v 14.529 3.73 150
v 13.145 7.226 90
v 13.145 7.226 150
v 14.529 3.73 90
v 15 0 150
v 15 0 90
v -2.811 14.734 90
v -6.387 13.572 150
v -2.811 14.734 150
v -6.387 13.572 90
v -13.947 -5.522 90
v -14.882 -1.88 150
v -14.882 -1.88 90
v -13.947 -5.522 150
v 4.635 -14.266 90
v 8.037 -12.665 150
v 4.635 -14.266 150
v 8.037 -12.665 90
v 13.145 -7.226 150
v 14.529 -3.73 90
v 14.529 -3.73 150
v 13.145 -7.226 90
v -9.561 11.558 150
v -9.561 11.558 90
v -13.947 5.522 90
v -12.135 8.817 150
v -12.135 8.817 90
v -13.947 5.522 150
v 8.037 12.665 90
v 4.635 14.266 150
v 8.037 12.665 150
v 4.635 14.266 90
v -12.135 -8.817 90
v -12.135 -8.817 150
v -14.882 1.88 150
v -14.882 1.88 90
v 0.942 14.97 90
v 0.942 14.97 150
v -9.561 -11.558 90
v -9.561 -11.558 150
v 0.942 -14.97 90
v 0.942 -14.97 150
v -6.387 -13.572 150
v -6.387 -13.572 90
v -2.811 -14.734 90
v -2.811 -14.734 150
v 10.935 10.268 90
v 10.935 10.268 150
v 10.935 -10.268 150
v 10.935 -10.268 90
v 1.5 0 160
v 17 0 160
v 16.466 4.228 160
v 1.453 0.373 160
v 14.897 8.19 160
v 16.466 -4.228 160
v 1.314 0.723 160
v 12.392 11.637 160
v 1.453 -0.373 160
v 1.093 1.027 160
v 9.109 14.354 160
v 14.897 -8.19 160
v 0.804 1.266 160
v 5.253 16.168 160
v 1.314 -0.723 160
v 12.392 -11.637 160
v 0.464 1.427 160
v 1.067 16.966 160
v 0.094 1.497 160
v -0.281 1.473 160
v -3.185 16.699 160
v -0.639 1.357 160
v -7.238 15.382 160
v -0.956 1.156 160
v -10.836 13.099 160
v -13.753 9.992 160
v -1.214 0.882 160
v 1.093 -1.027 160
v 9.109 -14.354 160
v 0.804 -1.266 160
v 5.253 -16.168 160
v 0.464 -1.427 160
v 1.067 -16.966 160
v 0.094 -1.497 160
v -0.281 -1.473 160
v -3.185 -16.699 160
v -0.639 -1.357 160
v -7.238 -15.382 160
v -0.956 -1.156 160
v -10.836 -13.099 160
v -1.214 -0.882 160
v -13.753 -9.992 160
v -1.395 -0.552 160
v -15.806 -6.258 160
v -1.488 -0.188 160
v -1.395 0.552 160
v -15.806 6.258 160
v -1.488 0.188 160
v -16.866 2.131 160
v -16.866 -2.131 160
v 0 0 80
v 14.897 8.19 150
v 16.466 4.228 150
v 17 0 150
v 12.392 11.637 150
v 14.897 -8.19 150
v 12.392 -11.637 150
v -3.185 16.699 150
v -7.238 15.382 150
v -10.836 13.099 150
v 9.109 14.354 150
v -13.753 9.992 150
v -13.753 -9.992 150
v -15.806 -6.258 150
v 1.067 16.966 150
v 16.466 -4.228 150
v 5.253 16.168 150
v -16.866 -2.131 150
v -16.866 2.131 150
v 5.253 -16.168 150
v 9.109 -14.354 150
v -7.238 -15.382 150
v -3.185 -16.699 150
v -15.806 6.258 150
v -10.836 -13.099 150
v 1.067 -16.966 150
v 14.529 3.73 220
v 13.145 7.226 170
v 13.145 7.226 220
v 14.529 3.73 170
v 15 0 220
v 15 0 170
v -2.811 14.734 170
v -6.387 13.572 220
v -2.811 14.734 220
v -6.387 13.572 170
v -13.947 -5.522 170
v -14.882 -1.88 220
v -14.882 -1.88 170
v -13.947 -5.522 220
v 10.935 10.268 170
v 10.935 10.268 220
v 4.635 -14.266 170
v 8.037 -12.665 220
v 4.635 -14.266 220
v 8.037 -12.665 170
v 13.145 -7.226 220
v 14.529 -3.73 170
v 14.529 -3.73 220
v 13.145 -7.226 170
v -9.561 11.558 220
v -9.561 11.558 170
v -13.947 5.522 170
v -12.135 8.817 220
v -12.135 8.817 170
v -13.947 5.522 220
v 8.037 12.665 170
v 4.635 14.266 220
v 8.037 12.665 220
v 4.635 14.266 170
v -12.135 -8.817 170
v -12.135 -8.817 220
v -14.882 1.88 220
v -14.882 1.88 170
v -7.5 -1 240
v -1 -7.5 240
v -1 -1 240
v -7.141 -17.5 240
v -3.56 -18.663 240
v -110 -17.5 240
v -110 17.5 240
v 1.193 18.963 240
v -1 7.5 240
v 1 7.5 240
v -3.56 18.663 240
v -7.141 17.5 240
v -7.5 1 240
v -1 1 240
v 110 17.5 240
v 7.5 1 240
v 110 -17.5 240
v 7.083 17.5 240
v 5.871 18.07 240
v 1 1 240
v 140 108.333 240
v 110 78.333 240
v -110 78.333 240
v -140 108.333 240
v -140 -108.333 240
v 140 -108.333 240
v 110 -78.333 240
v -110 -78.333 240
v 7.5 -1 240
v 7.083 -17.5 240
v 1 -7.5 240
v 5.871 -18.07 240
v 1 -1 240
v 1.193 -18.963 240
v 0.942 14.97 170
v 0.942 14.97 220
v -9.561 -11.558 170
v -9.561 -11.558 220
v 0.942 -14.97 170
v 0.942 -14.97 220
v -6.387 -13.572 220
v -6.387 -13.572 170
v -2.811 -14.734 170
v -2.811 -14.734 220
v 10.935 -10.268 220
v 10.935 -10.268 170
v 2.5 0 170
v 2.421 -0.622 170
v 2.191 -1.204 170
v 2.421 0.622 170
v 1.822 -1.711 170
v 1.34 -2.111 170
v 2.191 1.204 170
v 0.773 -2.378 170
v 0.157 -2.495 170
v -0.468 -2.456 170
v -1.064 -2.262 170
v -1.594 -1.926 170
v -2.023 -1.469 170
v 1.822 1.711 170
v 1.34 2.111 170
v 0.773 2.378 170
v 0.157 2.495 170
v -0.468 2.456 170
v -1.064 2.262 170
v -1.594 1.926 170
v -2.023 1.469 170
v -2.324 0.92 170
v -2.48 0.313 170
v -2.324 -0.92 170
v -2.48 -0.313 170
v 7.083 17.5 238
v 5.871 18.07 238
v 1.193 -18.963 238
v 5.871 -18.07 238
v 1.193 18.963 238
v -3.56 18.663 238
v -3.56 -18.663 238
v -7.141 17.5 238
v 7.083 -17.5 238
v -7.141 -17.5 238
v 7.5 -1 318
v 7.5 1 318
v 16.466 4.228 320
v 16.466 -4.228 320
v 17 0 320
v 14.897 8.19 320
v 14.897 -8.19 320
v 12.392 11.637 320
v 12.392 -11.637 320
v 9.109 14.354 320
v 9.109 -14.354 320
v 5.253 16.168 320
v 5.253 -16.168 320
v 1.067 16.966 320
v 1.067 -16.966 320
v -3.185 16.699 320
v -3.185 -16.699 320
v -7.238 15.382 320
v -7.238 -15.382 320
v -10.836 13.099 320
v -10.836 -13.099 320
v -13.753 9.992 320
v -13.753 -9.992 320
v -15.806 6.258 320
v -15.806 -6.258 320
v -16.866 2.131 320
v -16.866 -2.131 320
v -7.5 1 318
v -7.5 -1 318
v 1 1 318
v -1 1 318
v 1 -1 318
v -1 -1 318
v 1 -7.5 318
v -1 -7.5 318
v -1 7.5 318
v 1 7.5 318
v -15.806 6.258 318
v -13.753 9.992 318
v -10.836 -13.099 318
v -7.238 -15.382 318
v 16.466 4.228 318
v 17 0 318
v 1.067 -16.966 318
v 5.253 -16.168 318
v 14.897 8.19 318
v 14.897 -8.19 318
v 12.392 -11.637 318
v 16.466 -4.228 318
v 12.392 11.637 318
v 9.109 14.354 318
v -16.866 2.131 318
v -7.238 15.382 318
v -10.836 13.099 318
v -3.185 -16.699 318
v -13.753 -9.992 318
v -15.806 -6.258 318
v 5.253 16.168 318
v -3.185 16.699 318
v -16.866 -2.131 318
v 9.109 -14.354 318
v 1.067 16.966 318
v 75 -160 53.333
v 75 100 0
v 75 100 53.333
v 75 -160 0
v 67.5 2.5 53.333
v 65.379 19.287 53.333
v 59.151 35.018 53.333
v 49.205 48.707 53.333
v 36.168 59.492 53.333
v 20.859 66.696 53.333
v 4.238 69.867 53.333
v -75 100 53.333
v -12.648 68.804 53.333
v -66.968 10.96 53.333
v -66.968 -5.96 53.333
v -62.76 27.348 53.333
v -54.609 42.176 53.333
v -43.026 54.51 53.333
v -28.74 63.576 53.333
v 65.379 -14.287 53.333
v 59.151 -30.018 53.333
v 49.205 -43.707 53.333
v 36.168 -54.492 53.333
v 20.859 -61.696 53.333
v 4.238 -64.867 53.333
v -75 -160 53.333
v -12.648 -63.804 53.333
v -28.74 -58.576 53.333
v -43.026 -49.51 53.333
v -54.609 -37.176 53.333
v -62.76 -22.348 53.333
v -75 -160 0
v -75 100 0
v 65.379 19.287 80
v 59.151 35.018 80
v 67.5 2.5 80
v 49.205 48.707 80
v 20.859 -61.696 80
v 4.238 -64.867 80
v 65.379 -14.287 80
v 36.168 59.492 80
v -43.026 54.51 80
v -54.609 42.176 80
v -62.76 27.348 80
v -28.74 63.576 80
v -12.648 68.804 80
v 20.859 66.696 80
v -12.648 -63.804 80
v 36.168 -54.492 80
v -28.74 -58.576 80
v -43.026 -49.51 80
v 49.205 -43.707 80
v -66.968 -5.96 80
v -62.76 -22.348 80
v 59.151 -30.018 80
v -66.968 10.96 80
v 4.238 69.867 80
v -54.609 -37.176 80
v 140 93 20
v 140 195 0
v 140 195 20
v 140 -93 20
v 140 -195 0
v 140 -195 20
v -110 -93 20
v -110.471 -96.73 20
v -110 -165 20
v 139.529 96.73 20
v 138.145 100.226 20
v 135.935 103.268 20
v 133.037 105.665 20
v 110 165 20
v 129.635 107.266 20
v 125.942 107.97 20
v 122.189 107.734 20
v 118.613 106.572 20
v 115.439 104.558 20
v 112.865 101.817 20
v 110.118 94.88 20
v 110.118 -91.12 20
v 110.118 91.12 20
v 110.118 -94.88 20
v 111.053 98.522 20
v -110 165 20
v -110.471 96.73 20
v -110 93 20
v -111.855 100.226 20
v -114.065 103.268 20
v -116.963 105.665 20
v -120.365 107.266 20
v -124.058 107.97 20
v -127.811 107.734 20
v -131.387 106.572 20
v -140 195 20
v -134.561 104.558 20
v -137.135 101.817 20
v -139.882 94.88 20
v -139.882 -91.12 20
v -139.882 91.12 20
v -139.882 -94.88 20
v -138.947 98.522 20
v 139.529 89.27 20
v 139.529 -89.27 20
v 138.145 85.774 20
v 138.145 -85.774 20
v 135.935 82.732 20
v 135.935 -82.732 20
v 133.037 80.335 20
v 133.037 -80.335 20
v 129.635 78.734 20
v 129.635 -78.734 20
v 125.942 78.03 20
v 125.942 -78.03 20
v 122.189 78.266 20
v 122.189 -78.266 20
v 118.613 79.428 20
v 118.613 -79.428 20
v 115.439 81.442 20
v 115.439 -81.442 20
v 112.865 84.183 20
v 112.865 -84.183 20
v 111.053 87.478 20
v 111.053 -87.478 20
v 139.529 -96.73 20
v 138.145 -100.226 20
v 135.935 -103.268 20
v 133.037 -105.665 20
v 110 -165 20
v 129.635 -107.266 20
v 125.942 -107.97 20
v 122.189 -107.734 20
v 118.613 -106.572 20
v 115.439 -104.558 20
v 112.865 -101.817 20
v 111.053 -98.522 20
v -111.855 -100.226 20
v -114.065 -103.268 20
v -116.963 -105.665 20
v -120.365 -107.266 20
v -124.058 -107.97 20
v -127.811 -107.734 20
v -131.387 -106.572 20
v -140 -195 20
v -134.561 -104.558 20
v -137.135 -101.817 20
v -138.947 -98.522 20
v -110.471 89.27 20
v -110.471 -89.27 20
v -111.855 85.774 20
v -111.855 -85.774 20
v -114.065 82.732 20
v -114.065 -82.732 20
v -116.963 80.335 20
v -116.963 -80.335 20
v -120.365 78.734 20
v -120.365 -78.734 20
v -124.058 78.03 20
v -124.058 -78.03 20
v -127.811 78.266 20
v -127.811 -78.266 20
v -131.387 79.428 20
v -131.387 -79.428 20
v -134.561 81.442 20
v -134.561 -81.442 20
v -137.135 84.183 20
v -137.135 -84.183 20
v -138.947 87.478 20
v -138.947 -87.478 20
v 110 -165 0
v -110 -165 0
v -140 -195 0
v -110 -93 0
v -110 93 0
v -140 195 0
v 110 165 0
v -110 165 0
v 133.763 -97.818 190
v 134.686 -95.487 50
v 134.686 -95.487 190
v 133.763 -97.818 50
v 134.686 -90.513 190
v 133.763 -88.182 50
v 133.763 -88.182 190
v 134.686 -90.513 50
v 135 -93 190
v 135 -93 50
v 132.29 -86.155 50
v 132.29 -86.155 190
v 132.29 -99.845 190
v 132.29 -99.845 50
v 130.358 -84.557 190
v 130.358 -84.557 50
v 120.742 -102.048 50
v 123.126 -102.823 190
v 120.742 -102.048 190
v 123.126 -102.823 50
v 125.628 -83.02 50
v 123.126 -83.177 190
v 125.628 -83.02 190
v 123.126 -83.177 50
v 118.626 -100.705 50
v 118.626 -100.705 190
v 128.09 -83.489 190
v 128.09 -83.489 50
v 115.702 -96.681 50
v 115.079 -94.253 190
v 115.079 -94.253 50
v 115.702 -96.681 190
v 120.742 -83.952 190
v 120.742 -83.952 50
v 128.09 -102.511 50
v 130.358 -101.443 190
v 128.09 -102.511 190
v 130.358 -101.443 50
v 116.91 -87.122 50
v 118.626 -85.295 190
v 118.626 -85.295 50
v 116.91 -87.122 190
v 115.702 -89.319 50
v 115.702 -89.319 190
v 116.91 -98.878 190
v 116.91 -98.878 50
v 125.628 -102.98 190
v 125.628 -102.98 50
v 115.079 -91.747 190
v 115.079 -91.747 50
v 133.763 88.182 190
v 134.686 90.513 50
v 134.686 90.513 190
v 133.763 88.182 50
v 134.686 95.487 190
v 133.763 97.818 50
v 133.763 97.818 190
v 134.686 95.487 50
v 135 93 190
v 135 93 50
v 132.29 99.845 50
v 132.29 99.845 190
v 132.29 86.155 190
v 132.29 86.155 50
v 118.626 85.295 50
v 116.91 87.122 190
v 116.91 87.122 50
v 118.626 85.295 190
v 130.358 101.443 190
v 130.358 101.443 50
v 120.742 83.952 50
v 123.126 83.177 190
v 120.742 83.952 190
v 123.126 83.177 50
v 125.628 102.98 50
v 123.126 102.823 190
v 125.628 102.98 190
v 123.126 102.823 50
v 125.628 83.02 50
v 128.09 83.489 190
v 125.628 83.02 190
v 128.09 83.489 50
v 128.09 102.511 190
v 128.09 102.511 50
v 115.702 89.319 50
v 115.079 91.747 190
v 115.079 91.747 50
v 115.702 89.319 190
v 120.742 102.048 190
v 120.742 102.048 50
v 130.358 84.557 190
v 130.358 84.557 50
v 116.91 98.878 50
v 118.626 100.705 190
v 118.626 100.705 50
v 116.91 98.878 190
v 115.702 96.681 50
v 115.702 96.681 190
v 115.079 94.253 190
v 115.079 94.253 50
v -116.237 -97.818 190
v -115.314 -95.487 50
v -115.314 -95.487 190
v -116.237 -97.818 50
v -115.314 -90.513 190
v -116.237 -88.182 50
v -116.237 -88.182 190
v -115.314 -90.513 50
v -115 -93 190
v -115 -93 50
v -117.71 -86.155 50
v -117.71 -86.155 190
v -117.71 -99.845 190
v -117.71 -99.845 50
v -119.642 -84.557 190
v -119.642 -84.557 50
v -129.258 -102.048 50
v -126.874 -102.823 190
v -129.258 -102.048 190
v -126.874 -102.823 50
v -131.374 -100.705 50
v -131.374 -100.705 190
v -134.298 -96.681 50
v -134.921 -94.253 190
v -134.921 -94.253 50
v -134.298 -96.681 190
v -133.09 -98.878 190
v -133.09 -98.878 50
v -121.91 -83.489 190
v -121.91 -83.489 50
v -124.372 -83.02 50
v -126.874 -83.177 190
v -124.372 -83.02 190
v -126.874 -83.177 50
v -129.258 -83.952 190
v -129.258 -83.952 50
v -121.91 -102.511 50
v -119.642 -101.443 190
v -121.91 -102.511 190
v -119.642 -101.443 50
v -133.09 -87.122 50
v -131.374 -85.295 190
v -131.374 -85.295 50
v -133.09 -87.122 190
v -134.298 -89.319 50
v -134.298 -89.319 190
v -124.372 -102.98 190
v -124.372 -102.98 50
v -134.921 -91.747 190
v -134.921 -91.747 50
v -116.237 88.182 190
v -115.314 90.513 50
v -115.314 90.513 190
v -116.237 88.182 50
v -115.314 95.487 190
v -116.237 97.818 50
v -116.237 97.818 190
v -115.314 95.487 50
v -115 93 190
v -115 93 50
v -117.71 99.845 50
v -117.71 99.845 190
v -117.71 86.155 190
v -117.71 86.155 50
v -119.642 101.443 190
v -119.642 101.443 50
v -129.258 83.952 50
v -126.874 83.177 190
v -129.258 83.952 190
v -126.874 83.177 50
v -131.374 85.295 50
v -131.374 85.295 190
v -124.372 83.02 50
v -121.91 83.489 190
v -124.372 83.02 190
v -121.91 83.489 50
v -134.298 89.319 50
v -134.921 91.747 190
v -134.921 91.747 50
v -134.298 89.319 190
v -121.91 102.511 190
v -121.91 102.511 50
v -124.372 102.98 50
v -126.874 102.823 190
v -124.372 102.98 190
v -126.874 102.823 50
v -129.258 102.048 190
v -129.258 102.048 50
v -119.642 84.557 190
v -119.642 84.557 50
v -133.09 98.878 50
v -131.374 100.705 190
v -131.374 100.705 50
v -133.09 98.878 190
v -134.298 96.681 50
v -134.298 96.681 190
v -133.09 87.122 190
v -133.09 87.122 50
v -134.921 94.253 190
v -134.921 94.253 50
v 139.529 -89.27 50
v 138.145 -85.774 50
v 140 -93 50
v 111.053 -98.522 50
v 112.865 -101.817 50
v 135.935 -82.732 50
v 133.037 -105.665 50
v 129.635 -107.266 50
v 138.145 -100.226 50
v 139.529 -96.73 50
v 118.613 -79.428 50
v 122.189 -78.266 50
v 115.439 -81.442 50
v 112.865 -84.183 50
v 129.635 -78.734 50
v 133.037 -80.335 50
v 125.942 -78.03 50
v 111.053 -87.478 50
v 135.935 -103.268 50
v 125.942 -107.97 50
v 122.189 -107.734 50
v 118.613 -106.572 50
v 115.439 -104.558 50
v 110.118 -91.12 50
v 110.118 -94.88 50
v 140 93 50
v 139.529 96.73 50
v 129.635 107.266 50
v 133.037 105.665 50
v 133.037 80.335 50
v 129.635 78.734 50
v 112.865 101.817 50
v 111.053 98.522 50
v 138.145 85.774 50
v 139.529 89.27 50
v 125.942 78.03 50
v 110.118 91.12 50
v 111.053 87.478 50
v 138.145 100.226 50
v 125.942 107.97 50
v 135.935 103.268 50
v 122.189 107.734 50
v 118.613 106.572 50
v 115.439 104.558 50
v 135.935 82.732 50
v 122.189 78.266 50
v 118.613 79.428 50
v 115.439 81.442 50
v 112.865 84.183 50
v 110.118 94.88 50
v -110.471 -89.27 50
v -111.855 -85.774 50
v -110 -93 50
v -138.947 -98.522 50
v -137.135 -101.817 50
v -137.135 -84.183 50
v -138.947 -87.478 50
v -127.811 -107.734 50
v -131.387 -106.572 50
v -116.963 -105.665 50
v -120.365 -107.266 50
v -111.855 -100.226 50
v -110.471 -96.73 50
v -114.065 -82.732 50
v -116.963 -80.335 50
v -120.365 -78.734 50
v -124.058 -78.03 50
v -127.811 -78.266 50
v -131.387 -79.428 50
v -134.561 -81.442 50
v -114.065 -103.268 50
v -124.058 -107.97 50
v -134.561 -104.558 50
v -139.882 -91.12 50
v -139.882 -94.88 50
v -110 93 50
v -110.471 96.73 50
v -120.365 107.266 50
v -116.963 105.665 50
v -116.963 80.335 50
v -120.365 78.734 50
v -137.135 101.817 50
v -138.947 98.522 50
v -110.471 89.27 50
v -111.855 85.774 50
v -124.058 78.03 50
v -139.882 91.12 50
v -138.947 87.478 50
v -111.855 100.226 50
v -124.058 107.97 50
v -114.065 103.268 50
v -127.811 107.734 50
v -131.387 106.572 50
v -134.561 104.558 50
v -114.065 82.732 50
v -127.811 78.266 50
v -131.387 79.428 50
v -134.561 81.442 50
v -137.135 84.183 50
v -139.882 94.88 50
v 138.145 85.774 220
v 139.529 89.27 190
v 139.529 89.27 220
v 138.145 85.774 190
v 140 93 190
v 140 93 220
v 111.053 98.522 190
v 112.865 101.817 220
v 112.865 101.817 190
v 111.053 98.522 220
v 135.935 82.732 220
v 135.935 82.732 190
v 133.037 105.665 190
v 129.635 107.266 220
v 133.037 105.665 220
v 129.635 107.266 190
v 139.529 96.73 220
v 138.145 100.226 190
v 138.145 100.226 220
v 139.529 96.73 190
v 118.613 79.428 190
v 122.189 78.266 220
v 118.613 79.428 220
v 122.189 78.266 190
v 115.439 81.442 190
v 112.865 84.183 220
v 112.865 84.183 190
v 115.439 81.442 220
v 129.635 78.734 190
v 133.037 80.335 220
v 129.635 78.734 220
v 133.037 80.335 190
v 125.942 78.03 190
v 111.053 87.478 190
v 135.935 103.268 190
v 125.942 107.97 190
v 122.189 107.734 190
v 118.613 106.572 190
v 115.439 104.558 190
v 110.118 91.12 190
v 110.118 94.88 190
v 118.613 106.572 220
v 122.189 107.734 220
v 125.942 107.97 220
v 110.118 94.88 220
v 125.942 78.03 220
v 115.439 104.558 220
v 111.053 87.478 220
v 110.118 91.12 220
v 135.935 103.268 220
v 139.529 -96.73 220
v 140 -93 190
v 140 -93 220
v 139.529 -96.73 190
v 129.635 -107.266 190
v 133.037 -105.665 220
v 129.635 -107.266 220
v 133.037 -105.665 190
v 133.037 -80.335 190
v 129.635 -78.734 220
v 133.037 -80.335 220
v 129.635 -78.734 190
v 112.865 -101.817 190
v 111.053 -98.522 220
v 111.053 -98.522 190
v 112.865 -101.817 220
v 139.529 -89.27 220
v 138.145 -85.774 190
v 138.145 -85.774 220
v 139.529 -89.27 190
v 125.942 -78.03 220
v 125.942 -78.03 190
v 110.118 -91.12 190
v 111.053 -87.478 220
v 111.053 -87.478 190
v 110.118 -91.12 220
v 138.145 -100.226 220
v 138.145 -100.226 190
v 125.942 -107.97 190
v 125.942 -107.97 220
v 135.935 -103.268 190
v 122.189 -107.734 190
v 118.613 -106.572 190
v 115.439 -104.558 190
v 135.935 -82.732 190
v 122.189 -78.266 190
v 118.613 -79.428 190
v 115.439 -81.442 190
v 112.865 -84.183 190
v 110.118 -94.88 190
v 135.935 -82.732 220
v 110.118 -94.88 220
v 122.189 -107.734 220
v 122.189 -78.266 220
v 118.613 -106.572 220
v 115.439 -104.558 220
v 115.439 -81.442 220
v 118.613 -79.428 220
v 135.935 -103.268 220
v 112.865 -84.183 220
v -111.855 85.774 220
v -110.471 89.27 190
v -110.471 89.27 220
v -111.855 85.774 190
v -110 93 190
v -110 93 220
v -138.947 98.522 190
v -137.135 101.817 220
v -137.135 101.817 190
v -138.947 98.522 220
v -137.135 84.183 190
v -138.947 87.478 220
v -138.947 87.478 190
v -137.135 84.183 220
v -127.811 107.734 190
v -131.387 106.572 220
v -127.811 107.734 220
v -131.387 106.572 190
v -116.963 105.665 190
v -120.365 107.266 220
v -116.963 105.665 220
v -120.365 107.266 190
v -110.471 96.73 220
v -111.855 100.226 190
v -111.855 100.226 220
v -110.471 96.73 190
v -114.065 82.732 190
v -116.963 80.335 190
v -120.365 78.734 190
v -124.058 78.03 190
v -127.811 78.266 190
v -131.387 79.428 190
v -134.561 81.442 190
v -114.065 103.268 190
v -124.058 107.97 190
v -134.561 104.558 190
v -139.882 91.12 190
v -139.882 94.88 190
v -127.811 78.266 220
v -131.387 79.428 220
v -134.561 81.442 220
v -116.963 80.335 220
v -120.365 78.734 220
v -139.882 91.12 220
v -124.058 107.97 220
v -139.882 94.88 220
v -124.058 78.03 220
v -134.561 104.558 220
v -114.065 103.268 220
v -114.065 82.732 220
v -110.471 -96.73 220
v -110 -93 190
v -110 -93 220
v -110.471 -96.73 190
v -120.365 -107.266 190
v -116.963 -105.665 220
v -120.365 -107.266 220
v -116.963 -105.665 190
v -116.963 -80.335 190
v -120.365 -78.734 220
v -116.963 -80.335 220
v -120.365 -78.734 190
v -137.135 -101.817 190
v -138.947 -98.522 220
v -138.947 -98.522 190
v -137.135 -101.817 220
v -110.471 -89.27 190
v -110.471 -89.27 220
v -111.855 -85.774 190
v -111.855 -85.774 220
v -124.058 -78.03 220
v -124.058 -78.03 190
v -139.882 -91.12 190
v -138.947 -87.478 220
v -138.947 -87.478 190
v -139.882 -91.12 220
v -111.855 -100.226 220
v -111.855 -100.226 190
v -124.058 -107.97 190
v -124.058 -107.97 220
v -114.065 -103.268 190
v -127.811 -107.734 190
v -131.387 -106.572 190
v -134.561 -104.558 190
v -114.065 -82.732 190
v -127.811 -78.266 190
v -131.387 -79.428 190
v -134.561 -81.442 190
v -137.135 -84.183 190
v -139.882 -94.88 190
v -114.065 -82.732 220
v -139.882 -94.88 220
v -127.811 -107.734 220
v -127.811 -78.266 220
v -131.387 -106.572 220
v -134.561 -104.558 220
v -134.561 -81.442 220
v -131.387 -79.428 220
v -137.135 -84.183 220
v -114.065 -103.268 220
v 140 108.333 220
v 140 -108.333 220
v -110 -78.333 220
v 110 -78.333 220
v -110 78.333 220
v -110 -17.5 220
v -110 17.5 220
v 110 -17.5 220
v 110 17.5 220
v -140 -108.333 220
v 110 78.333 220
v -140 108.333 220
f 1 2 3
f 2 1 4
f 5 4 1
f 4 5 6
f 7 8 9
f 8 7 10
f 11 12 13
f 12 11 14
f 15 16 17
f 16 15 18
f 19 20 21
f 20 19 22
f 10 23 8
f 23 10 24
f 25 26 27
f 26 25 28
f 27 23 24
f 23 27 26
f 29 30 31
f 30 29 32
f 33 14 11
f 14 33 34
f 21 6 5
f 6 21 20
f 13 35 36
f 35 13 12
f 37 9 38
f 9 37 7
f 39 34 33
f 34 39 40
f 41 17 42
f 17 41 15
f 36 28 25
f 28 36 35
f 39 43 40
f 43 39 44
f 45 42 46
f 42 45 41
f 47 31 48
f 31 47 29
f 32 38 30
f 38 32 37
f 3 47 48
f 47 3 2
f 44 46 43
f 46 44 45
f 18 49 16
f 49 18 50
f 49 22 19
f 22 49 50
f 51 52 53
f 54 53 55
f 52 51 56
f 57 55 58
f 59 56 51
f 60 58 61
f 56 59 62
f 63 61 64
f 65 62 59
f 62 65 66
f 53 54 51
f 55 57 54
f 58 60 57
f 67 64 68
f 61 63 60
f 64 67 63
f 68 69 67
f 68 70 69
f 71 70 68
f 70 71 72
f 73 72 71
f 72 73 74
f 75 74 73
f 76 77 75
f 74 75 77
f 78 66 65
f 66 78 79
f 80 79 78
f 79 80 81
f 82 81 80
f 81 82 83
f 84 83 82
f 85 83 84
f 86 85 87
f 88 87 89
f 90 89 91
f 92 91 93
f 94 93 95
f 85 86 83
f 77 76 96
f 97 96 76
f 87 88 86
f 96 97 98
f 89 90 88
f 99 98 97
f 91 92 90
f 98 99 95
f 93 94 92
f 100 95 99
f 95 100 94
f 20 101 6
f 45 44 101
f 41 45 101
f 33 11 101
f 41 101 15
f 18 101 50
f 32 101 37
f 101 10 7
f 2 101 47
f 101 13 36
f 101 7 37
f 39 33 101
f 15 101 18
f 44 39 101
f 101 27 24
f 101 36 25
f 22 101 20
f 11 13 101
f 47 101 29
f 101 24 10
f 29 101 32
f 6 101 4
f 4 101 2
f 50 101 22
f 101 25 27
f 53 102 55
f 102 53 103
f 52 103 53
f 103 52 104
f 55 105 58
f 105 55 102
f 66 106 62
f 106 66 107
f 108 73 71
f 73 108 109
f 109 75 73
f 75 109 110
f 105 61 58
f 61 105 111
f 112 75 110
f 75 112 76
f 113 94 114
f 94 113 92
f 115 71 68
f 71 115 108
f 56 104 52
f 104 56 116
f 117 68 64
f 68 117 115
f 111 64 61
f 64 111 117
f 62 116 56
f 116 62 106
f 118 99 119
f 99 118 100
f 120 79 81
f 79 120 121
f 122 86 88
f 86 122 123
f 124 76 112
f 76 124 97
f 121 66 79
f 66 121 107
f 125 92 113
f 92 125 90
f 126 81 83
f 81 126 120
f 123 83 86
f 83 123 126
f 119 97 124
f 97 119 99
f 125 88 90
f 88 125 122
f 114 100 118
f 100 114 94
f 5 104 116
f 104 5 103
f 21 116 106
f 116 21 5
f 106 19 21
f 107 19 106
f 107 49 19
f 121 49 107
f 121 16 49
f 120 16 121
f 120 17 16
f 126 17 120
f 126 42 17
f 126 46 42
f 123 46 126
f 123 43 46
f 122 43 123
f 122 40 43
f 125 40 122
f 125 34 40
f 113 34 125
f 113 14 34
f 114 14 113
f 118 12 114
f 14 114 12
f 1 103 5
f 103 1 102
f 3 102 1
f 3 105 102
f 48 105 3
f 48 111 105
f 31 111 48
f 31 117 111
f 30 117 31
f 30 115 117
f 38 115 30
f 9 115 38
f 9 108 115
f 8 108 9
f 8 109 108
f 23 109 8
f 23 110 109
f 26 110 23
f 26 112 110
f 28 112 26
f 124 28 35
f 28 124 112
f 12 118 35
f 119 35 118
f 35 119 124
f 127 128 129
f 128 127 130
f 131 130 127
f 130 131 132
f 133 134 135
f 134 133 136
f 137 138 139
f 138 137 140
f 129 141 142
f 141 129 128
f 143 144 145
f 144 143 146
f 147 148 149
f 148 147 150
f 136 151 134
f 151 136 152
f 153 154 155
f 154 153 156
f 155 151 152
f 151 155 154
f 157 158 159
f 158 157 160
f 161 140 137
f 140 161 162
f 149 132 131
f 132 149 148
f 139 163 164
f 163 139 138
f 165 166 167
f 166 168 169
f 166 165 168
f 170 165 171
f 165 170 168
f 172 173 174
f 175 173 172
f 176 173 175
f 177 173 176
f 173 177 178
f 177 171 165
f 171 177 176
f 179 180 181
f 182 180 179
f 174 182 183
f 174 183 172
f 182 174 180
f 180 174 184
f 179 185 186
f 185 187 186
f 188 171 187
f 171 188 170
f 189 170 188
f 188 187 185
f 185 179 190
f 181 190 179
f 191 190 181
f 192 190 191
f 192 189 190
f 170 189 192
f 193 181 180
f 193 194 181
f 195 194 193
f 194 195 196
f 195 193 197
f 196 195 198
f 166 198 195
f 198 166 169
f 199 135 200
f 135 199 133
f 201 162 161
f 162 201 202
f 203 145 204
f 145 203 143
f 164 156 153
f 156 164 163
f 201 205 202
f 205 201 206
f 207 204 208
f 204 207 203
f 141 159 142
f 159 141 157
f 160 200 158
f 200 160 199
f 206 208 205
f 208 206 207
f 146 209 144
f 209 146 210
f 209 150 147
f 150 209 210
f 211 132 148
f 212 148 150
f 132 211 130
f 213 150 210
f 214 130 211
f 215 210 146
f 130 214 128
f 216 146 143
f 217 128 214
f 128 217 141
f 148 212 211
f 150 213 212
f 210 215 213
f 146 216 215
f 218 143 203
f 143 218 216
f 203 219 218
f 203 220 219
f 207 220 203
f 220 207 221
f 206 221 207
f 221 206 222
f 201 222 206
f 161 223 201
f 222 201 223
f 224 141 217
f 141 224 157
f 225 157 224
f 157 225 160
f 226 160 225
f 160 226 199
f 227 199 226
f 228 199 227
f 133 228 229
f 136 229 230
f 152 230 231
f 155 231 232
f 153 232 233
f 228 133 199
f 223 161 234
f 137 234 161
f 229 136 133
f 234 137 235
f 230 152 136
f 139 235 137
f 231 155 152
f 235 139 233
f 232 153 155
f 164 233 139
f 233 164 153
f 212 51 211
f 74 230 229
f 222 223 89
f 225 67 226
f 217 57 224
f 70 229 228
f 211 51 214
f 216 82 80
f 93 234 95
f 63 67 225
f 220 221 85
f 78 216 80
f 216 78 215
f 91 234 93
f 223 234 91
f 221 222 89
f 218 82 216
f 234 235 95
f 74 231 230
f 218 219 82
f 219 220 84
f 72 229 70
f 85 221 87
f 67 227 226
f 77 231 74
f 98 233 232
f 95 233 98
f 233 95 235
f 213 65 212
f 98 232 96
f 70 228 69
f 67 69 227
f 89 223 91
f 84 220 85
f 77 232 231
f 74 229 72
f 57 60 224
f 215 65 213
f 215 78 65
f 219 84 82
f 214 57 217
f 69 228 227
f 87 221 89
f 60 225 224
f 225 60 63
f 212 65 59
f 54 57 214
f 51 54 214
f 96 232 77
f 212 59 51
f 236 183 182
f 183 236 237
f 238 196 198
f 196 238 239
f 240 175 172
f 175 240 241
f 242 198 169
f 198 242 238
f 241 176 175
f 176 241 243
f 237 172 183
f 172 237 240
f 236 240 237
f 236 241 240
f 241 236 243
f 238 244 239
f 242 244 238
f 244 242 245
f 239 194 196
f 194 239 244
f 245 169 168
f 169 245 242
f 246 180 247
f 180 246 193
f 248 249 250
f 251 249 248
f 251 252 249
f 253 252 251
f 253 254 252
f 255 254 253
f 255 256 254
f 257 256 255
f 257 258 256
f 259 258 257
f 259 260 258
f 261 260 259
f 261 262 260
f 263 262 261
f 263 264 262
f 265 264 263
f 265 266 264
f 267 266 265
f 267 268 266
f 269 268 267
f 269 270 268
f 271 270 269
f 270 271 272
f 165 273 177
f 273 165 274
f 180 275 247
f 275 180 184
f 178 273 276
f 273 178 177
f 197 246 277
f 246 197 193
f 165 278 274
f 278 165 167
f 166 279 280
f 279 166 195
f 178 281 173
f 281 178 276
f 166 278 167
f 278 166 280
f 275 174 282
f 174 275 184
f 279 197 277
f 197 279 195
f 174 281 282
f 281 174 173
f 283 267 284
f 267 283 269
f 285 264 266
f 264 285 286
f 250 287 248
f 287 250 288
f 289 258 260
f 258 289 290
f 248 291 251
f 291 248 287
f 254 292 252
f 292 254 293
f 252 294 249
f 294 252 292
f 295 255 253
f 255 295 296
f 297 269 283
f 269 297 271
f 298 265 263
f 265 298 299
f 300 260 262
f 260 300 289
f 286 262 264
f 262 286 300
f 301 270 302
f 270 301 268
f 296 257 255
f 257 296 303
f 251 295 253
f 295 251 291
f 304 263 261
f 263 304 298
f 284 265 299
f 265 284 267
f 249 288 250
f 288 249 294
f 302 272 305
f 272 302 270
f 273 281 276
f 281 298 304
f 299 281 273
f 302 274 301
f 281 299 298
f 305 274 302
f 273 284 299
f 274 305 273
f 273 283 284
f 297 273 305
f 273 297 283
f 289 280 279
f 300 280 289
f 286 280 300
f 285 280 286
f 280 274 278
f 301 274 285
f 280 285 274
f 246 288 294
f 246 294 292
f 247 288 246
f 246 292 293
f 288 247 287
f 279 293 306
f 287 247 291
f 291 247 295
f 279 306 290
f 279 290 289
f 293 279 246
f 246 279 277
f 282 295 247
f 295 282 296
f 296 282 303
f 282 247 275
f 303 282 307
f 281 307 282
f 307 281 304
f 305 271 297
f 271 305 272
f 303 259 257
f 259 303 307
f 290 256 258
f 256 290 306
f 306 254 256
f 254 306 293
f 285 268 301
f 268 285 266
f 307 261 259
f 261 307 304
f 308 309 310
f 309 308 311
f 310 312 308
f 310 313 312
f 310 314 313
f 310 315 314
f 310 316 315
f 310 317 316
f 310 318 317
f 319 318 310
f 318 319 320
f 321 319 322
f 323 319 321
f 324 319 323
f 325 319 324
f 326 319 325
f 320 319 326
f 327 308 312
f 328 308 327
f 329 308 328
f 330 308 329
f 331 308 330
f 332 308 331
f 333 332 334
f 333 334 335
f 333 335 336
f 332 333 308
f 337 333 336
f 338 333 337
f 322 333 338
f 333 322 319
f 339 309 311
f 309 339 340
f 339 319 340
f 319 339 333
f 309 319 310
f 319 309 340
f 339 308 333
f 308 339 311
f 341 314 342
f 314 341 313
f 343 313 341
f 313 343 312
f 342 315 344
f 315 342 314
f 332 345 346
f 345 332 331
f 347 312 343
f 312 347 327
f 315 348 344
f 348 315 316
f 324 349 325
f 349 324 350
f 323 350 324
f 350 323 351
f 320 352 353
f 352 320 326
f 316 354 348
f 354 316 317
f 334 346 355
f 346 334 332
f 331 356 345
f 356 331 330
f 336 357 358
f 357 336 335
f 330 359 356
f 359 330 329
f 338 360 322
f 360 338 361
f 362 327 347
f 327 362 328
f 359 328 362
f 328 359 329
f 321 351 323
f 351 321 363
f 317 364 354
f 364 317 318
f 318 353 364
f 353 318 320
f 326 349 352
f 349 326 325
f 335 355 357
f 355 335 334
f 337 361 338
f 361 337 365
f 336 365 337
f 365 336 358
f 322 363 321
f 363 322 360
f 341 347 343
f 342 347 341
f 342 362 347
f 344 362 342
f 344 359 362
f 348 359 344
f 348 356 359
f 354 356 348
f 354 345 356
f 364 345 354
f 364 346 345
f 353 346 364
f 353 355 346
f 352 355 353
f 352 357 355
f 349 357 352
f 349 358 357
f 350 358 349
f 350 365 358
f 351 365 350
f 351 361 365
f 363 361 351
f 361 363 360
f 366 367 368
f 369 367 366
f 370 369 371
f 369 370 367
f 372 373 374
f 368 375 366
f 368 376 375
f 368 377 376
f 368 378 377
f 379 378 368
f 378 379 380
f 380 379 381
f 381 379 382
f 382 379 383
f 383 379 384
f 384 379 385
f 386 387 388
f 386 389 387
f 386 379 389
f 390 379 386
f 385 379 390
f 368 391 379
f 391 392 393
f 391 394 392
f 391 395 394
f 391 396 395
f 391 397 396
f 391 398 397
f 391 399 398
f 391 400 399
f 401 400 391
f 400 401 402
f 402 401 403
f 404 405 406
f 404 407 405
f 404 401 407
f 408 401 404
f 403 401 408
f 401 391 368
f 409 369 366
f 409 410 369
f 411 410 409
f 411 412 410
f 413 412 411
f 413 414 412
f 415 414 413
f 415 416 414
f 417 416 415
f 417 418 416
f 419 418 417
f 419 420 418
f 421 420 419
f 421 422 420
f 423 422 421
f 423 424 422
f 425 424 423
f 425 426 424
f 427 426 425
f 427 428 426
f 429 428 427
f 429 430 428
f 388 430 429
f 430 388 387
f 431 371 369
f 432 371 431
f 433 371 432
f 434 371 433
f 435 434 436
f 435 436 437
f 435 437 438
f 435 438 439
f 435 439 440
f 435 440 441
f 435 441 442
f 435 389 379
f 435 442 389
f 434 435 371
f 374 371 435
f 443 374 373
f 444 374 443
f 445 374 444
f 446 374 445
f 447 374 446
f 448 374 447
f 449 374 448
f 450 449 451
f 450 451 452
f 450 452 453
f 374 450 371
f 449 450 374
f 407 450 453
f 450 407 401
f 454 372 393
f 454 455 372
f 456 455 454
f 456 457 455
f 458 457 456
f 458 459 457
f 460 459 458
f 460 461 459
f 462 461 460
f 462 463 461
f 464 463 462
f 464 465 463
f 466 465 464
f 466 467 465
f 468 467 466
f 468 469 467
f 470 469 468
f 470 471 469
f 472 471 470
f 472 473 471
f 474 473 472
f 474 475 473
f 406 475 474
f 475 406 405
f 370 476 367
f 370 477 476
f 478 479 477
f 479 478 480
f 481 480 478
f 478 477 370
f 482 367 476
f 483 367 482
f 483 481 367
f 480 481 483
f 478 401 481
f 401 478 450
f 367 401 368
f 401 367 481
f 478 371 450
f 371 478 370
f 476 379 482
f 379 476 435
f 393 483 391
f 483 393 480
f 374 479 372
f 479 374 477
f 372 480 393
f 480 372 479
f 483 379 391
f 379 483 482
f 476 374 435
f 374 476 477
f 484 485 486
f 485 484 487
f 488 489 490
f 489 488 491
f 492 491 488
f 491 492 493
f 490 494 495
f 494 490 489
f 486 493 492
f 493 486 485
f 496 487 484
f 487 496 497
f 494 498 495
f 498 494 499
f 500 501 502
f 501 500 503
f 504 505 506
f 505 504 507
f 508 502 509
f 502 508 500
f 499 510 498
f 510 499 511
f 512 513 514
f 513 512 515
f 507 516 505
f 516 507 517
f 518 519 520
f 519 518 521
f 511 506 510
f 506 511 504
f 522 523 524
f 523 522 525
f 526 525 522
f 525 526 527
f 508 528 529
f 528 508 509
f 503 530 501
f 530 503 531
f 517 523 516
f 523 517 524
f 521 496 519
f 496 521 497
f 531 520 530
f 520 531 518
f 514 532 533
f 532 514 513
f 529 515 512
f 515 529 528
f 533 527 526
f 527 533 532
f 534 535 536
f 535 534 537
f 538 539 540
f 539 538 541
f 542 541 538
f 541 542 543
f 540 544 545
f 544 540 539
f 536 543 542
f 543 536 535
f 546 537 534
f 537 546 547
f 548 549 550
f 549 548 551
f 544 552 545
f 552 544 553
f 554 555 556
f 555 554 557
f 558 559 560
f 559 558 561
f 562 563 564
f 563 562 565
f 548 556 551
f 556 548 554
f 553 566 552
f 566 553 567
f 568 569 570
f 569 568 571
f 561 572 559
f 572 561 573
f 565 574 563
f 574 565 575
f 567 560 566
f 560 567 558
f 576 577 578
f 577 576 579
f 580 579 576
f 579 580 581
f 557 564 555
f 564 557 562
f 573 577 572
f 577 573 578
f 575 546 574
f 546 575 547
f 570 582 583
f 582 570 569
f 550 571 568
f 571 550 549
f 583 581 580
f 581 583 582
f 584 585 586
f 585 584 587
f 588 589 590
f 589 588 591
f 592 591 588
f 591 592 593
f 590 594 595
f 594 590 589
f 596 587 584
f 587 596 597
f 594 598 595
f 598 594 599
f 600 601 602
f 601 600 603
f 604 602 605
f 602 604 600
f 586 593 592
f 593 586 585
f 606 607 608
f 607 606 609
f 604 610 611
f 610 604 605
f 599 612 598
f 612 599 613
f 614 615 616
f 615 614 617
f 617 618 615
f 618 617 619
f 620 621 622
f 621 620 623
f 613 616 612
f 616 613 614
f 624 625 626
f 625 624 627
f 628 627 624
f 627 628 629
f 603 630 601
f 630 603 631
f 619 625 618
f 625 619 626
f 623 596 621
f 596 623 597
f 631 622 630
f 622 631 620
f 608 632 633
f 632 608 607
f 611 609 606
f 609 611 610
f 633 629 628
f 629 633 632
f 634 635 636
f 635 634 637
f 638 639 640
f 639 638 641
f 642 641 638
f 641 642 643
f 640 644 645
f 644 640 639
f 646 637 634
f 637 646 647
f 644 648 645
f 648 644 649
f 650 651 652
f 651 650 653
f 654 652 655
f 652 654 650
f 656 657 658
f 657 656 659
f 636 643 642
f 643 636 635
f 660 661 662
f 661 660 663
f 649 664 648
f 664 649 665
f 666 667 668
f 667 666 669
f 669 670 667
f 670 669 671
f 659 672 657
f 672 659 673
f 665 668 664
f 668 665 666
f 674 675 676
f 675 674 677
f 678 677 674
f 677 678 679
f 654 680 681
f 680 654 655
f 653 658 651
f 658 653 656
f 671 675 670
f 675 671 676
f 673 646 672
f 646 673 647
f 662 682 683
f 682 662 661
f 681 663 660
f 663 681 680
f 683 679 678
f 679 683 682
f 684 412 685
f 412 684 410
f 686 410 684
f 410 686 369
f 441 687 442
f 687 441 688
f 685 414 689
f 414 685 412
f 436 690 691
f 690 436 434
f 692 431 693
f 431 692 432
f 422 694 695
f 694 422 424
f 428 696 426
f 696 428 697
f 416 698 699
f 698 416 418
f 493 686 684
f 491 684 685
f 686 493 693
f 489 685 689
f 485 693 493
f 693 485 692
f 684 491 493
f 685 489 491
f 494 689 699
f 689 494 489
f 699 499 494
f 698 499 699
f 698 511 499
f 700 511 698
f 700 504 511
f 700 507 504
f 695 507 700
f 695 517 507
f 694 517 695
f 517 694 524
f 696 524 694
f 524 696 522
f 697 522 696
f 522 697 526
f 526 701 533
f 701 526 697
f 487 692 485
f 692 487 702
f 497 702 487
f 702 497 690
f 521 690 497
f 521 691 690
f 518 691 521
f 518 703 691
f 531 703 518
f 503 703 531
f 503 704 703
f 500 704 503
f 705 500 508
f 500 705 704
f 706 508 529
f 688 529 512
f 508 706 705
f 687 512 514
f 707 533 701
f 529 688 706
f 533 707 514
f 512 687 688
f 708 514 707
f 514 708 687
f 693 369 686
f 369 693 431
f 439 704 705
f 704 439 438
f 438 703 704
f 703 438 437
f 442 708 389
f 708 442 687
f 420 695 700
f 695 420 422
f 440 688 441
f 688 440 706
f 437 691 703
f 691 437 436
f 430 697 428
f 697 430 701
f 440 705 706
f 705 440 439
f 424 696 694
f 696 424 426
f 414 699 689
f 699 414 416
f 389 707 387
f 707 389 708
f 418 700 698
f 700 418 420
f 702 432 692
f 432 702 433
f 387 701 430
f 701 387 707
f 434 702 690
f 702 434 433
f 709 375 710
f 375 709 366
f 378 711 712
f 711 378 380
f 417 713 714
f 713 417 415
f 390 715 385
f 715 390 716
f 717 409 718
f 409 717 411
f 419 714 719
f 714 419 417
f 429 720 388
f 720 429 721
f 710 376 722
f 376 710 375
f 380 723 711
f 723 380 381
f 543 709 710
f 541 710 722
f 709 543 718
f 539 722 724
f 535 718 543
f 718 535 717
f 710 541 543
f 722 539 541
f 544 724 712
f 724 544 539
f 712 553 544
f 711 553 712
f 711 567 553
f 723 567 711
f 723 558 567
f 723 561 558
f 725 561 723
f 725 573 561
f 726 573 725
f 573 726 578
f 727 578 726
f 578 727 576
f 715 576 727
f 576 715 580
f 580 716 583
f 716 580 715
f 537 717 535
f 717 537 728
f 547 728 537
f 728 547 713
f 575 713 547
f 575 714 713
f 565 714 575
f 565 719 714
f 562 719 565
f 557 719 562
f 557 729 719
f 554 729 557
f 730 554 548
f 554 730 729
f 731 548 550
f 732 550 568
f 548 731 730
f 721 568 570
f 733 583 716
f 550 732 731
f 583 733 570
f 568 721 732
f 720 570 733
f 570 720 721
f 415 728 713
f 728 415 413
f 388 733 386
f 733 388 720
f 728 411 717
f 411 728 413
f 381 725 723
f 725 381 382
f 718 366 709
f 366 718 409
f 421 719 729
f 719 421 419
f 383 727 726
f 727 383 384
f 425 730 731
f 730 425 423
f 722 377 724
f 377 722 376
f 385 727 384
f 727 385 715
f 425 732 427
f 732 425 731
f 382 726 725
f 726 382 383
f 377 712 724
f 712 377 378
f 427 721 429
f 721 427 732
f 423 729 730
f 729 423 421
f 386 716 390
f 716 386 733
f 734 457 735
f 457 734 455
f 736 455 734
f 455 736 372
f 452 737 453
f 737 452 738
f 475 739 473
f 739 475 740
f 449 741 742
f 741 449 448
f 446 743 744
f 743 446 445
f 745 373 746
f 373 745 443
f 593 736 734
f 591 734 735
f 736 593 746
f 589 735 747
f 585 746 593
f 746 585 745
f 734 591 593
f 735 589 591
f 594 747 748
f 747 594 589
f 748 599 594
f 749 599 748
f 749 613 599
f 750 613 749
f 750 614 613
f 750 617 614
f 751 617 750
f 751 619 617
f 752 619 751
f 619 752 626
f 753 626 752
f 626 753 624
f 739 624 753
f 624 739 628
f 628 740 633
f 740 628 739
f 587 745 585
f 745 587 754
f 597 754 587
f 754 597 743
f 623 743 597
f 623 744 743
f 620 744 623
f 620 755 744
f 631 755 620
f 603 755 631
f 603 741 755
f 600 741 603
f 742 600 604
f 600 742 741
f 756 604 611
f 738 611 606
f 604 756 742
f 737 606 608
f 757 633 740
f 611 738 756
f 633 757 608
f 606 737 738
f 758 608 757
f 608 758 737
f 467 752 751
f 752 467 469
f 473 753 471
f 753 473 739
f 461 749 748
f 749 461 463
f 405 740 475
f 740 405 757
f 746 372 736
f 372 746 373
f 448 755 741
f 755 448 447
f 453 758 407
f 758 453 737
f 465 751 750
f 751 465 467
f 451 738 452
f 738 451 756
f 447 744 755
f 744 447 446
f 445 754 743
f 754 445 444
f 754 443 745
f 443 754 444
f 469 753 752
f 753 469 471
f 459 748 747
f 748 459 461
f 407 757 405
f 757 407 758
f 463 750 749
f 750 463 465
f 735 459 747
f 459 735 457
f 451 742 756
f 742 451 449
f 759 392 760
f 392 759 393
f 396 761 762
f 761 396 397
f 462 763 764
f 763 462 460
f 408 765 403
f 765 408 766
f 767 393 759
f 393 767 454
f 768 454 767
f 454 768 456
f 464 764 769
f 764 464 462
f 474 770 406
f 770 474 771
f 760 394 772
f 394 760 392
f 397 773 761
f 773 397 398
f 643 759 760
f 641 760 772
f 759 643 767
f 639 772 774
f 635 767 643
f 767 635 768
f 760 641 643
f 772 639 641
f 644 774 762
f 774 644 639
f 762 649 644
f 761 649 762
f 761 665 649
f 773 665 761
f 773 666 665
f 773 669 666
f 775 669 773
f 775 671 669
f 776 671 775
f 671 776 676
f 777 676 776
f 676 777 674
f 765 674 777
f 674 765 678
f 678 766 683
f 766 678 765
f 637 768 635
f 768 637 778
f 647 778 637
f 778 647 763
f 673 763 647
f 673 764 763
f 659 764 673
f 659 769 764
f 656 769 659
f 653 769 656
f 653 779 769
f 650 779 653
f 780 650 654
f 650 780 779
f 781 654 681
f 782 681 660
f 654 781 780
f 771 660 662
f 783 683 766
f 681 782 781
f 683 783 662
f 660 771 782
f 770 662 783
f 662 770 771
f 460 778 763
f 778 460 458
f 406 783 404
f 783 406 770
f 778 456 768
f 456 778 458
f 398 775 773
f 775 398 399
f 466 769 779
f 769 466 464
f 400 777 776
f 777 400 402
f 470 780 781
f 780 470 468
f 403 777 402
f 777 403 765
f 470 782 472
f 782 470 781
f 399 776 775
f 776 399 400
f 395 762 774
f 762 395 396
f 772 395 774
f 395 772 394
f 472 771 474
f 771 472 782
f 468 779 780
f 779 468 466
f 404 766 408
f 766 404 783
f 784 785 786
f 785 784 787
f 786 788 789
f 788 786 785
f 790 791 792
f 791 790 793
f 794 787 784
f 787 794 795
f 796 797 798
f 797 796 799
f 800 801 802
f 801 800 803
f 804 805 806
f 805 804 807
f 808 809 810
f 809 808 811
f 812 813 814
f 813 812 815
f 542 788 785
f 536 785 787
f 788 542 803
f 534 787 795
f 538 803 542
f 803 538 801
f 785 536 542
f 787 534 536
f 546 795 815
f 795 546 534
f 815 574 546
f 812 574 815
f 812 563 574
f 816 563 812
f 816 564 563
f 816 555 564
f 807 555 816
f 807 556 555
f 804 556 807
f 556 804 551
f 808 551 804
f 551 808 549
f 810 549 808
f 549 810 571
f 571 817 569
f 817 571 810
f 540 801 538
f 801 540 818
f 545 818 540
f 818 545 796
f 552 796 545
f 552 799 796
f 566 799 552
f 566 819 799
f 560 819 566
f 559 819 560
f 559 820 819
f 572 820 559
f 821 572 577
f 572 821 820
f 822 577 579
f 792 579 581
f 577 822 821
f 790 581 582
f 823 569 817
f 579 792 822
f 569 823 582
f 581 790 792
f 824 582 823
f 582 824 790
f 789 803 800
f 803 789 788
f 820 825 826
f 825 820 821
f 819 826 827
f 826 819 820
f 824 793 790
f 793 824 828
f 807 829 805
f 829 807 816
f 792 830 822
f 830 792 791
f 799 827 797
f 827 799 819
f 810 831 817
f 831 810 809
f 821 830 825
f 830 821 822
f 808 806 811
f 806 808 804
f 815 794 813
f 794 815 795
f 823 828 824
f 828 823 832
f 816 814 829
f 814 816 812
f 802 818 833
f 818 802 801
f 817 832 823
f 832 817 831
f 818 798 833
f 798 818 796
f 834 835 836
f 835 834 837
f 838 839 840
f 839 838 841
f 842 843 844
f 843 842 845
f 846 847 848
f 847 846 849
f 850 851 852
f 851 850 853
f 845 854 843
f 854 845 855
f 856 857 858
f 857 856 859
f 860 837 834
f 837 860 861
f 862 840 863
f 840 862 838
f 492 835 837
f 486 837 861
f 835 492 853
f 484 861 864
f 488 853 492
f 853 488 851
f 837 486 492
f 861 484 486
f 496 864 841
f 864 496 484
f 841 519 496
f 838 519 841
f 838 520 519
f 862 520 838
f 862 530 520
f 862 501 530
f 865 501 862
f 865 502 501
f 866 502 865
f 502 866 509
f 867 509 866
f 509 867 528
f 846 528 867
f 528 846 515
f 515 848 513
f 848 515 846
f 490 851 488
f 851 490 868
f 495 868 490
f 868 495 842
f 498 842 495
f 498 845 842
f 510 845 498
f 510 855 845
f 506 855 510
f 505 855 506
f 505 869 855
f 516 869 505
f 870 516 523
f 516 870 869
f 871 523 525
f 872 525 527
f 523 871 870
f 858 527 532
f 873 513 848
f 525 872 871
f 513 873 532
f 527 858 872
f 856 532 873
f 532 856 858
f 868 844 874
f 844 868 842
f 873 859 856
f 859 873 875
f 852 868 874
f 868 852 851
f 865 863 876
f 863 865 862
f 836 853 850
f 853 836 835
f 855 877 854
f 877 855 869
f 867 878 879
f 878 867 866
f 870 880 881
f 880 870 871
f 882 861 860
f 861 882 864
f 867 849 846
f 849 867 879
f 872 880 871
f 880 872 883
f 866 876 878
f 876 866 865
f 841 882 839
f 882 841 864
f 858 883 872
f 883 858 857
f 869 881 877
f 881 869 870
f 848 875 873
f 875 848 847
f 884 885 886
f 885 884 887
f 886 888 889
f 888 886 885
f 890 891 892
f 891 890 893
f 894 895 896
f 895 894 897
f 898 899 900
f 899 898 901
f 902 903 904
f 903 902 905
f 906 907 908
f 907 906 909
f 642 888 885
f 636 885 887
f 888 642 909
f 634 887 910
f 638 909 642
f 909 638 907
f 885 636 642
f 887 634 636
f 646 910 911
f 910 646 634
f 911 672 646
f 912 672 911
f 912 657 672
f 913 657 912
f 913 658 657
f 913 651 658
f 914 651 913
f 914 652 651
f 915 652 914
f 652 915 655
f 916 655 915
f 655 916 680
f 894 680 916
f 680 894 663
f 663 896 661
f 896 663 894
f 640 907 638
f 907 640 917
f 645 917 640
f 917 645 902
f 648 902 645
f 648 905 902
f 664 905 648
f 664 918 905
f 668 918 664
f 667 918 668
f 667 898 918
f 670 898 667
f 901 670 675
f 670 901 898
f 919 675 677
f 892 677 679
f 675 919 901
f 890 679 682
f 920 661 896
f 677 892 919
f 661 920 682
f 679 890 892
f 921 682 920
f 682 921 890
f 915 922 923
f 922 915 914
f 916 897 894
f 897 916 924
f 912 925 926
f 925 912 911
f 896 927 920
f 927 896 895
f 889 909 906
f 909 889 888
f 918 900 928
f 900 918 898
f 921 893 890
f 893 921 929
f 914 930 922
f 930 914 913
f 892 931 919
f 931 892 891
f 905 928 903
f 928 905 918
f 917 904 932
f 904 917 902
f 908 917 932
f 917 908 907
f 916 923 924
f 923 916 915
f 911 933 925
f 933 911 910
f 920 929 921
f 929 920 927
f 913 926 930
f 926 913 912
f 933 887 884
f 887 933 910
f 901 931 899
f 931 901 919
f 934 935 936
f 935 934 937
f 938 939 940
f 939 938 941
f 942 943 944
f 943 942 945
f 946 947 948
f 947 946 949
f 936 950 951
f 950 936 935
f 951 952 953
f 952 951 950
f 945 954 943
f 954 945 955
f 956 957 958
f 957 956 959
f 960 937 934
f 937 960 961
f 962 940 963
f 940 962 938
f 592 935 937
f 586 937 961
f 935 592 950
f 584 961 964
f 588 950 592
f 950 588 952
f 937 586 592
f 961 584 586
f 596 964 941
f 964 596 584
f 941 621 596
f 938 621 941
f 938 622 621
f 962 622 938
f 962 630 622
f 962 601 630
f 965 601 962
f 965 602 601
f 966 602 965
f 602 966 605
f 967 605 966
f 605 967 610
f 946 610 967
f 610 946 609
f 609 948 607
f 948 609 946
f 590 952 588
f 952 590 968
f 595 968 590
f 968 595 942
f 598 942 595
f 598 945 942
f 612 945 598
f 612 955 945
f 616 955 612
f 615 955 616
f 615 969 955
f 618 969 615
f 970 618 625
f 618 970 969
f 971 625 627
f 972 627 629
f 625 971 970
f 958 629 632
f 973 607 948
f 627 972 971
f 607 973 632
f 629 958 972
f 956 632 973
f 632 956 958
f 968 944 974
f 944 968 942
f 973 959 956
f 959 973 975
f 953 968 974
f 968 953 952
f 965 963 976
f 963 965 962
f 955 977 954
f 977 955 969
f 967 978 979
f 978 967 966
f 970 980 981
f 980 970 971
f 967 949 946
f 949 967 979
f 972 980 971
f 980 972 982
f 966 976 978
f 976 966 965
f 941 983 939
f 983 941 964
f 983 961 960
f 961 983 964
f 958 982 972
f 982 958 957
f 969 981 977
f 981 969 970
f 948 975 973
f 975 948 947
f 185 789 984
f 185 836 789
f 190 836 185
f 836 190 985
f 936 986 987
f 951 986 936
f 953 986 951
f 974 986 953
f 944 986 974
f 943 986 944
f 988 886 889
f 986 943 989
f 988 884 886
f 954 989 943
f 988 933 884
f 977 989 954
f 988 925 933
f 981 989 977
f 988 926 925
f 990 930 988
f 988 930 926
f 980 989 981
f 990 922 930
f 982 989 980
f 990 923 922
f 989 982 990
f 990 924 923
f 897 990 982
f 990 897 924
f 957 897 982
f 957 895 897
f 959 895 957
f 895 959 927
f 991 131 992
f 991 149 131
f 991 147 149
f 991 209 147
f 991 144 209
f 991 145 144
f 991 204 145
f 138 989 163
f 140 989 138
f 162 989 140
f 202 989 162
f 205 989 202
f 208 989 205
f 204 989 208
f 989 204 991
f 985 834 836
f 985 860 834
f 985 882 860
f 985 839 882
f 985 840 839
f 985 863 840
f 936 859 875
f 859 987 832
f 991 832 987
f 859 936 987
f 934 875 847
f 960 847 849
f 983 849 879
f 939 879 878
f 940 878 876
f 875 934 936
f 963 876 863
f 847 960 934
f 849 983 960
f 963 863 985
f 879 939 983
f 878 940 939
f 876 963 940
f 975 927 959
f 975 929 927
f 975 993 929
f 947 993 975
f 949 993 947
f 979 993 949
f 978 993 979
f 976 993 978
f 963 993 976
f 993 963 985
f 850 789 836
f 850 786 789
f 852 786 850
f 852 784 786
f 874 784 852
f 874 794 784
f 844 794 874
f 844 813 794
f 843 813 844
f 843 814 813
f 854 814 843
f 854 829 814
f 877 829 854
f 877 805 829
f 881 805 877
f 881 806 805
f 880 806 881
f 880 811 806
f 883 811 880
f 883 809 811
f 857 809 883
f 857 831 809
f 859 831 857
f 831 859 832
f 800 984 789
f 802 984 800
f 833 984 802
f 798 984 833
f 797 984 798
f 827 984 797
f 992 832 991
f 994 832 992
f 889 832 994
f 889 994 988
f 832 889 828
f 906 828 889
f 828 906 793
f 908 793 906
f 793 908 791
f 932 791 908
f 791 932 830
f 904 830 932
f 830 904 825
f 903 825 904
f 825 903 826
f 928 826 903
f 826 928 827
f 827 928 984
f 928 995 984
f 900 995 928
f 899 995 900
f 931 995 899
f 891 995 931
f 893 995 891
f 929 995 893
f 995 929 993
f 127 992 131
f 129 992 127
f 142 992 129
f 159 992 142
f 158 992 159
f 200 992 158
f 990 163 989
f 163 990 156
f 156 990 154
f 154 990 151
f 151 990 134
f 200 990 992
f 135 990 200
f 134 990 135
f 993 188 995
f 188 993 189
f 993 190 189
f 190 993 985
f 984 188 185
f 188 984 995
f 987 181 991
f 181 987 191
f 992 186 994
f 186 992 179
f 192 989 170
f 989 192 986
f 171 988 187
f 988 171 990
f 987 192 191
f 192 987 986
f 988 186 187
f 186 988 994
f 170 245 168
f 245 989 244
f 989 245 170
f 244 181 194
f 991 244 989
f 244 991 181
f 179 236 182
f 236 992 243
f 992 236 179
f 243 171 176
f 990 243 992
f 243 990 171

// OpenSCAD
// file: rack.scad
module stand(width,depth,pole_radius,extra_play,thickness){
        pole_position = 93;
        color("white"){
        difference(){
            union(){
                difference(){
                    translate([-(width/2+extra_play+thickness),-(depth/2+thickness+extra_play),0]){
                    cube([width+2*(extra_play+thickness),depth+2*(extra_play+thickness),20]);
                    };
                    translate([-(width/2+extra_play),-(depth/2+extra_play),0]){
                    cube([width+2*extra_play,depth+2*extra_play,20]);
                    };
                };
            };
            for(x = [width/2+extra_play+thickness/2, -width/2-extra_play-thickness/2], y = [-       pole_position,pole_position]) translate([x, y, 10]) cylinder(r=pole_radius, h=50);
            };

            difference(){
                
                for(x = [width/2+extra_play+thickness/2, -width/2-extra_play-thickness/2], y =              [-pole_position,pole_position]) translate([x, y, 0]) cylinder(r=pole_radius+5, h=50);
                
                for(x = [width/2+extra_play+thickness/2, -width/2-extra_play-thickness/2], y =              [-pole_position,pole_position]) translate([x, y, 0]) cylinder(r=pole_radius, h=50); 
                };
                for(x = [width/2+extra_play+thickness/2, -width/2-extra_play-thickness/2], y =              [-pole_position,pole_position]) translate([x, y, 0]) cylinder(r=pole_radius, h=3*80);
        };
    };
// file: lab_equipment.scad
$fn=50;
module falcon(height,radius){
        color("lightblue"){
        translate([0,0,10]){        
            cylinder(height-10,radius,radius);
            rotate([180,0,0]){
                cylinder(10,radius,0);
            };
            translate([0,0,height-20]){
            cylinder(10,radius+2,radius+2);
            };
        };
    };
};

module syringe(height,radius){
    color("lightgreen"){
    translate([0,0,10]){        
            cylinder(height-10,radius,radius);
            rotate([180,0,0]){
                cylinder(10,radius/6,radius/10);
            };
            translate([0,0,height-12]){
            cylinder(2,radius+4,radius+4);
            };
        };
        translate([-radius/2,-1,height]){
              cube([radius,2,height]);  
        };
        rotate([0,0,90]){
            translate([-radius/2,-1,height]){
                  cube([radius,2,height]);  
            };
        };
        translate([0,0,2*height-2]){
            cylinder(2,radius+2,radius+2);
        };
    };
};

module stirrer(radius,width,depth,height){
        color("darkgray"){
        translate([-width/2,-depth/2,0]){
            cube([width,depth,height*2/3]);
        };
        translate([0,depth/8,0]){
            cylinder(height,radius,radius);
        };
    };
};
// main file
include <lab_equipment.scad>;
include <rack.scad>;

$fn=25;
stirrer_radius=135/2;
stirrer_width=150;
stirrer_depth=260;
stirrer_height=80;
translate([0,-30,0]){
    stirrer(stirrer_radius,stirrer_width,stirrer_depth,stirrer_height);
};

falcon_height=80;
falcon_radius=15;
syringe_height=80;
syringe_radius=15;
translate([0,0,80]){
    falcon(falcon_height,falcon_radius);
    translate([0,0,falcon_height]){
        syringe(syringe_height,syringe_radius);
    };
};

pole_radius=10;
extra_play=35;
thickness=30;
translate([0,0,0]){
    stand(stirrer_width,stirrer_depth,pole_radius,extra_play,thickness);
};


translate([0,0,3*80]){
    rotate([0,180,180]){
        stand(stirrer_width,stirrer_depth/3,pole_radius,extra_play,thickness);
        translate([0,0,10]){
            color("white"){
                cube([stirrer_width+2*extra_play+2*thickness,falcon_radius+20,20],center=true);
            };
        }
    };
};
